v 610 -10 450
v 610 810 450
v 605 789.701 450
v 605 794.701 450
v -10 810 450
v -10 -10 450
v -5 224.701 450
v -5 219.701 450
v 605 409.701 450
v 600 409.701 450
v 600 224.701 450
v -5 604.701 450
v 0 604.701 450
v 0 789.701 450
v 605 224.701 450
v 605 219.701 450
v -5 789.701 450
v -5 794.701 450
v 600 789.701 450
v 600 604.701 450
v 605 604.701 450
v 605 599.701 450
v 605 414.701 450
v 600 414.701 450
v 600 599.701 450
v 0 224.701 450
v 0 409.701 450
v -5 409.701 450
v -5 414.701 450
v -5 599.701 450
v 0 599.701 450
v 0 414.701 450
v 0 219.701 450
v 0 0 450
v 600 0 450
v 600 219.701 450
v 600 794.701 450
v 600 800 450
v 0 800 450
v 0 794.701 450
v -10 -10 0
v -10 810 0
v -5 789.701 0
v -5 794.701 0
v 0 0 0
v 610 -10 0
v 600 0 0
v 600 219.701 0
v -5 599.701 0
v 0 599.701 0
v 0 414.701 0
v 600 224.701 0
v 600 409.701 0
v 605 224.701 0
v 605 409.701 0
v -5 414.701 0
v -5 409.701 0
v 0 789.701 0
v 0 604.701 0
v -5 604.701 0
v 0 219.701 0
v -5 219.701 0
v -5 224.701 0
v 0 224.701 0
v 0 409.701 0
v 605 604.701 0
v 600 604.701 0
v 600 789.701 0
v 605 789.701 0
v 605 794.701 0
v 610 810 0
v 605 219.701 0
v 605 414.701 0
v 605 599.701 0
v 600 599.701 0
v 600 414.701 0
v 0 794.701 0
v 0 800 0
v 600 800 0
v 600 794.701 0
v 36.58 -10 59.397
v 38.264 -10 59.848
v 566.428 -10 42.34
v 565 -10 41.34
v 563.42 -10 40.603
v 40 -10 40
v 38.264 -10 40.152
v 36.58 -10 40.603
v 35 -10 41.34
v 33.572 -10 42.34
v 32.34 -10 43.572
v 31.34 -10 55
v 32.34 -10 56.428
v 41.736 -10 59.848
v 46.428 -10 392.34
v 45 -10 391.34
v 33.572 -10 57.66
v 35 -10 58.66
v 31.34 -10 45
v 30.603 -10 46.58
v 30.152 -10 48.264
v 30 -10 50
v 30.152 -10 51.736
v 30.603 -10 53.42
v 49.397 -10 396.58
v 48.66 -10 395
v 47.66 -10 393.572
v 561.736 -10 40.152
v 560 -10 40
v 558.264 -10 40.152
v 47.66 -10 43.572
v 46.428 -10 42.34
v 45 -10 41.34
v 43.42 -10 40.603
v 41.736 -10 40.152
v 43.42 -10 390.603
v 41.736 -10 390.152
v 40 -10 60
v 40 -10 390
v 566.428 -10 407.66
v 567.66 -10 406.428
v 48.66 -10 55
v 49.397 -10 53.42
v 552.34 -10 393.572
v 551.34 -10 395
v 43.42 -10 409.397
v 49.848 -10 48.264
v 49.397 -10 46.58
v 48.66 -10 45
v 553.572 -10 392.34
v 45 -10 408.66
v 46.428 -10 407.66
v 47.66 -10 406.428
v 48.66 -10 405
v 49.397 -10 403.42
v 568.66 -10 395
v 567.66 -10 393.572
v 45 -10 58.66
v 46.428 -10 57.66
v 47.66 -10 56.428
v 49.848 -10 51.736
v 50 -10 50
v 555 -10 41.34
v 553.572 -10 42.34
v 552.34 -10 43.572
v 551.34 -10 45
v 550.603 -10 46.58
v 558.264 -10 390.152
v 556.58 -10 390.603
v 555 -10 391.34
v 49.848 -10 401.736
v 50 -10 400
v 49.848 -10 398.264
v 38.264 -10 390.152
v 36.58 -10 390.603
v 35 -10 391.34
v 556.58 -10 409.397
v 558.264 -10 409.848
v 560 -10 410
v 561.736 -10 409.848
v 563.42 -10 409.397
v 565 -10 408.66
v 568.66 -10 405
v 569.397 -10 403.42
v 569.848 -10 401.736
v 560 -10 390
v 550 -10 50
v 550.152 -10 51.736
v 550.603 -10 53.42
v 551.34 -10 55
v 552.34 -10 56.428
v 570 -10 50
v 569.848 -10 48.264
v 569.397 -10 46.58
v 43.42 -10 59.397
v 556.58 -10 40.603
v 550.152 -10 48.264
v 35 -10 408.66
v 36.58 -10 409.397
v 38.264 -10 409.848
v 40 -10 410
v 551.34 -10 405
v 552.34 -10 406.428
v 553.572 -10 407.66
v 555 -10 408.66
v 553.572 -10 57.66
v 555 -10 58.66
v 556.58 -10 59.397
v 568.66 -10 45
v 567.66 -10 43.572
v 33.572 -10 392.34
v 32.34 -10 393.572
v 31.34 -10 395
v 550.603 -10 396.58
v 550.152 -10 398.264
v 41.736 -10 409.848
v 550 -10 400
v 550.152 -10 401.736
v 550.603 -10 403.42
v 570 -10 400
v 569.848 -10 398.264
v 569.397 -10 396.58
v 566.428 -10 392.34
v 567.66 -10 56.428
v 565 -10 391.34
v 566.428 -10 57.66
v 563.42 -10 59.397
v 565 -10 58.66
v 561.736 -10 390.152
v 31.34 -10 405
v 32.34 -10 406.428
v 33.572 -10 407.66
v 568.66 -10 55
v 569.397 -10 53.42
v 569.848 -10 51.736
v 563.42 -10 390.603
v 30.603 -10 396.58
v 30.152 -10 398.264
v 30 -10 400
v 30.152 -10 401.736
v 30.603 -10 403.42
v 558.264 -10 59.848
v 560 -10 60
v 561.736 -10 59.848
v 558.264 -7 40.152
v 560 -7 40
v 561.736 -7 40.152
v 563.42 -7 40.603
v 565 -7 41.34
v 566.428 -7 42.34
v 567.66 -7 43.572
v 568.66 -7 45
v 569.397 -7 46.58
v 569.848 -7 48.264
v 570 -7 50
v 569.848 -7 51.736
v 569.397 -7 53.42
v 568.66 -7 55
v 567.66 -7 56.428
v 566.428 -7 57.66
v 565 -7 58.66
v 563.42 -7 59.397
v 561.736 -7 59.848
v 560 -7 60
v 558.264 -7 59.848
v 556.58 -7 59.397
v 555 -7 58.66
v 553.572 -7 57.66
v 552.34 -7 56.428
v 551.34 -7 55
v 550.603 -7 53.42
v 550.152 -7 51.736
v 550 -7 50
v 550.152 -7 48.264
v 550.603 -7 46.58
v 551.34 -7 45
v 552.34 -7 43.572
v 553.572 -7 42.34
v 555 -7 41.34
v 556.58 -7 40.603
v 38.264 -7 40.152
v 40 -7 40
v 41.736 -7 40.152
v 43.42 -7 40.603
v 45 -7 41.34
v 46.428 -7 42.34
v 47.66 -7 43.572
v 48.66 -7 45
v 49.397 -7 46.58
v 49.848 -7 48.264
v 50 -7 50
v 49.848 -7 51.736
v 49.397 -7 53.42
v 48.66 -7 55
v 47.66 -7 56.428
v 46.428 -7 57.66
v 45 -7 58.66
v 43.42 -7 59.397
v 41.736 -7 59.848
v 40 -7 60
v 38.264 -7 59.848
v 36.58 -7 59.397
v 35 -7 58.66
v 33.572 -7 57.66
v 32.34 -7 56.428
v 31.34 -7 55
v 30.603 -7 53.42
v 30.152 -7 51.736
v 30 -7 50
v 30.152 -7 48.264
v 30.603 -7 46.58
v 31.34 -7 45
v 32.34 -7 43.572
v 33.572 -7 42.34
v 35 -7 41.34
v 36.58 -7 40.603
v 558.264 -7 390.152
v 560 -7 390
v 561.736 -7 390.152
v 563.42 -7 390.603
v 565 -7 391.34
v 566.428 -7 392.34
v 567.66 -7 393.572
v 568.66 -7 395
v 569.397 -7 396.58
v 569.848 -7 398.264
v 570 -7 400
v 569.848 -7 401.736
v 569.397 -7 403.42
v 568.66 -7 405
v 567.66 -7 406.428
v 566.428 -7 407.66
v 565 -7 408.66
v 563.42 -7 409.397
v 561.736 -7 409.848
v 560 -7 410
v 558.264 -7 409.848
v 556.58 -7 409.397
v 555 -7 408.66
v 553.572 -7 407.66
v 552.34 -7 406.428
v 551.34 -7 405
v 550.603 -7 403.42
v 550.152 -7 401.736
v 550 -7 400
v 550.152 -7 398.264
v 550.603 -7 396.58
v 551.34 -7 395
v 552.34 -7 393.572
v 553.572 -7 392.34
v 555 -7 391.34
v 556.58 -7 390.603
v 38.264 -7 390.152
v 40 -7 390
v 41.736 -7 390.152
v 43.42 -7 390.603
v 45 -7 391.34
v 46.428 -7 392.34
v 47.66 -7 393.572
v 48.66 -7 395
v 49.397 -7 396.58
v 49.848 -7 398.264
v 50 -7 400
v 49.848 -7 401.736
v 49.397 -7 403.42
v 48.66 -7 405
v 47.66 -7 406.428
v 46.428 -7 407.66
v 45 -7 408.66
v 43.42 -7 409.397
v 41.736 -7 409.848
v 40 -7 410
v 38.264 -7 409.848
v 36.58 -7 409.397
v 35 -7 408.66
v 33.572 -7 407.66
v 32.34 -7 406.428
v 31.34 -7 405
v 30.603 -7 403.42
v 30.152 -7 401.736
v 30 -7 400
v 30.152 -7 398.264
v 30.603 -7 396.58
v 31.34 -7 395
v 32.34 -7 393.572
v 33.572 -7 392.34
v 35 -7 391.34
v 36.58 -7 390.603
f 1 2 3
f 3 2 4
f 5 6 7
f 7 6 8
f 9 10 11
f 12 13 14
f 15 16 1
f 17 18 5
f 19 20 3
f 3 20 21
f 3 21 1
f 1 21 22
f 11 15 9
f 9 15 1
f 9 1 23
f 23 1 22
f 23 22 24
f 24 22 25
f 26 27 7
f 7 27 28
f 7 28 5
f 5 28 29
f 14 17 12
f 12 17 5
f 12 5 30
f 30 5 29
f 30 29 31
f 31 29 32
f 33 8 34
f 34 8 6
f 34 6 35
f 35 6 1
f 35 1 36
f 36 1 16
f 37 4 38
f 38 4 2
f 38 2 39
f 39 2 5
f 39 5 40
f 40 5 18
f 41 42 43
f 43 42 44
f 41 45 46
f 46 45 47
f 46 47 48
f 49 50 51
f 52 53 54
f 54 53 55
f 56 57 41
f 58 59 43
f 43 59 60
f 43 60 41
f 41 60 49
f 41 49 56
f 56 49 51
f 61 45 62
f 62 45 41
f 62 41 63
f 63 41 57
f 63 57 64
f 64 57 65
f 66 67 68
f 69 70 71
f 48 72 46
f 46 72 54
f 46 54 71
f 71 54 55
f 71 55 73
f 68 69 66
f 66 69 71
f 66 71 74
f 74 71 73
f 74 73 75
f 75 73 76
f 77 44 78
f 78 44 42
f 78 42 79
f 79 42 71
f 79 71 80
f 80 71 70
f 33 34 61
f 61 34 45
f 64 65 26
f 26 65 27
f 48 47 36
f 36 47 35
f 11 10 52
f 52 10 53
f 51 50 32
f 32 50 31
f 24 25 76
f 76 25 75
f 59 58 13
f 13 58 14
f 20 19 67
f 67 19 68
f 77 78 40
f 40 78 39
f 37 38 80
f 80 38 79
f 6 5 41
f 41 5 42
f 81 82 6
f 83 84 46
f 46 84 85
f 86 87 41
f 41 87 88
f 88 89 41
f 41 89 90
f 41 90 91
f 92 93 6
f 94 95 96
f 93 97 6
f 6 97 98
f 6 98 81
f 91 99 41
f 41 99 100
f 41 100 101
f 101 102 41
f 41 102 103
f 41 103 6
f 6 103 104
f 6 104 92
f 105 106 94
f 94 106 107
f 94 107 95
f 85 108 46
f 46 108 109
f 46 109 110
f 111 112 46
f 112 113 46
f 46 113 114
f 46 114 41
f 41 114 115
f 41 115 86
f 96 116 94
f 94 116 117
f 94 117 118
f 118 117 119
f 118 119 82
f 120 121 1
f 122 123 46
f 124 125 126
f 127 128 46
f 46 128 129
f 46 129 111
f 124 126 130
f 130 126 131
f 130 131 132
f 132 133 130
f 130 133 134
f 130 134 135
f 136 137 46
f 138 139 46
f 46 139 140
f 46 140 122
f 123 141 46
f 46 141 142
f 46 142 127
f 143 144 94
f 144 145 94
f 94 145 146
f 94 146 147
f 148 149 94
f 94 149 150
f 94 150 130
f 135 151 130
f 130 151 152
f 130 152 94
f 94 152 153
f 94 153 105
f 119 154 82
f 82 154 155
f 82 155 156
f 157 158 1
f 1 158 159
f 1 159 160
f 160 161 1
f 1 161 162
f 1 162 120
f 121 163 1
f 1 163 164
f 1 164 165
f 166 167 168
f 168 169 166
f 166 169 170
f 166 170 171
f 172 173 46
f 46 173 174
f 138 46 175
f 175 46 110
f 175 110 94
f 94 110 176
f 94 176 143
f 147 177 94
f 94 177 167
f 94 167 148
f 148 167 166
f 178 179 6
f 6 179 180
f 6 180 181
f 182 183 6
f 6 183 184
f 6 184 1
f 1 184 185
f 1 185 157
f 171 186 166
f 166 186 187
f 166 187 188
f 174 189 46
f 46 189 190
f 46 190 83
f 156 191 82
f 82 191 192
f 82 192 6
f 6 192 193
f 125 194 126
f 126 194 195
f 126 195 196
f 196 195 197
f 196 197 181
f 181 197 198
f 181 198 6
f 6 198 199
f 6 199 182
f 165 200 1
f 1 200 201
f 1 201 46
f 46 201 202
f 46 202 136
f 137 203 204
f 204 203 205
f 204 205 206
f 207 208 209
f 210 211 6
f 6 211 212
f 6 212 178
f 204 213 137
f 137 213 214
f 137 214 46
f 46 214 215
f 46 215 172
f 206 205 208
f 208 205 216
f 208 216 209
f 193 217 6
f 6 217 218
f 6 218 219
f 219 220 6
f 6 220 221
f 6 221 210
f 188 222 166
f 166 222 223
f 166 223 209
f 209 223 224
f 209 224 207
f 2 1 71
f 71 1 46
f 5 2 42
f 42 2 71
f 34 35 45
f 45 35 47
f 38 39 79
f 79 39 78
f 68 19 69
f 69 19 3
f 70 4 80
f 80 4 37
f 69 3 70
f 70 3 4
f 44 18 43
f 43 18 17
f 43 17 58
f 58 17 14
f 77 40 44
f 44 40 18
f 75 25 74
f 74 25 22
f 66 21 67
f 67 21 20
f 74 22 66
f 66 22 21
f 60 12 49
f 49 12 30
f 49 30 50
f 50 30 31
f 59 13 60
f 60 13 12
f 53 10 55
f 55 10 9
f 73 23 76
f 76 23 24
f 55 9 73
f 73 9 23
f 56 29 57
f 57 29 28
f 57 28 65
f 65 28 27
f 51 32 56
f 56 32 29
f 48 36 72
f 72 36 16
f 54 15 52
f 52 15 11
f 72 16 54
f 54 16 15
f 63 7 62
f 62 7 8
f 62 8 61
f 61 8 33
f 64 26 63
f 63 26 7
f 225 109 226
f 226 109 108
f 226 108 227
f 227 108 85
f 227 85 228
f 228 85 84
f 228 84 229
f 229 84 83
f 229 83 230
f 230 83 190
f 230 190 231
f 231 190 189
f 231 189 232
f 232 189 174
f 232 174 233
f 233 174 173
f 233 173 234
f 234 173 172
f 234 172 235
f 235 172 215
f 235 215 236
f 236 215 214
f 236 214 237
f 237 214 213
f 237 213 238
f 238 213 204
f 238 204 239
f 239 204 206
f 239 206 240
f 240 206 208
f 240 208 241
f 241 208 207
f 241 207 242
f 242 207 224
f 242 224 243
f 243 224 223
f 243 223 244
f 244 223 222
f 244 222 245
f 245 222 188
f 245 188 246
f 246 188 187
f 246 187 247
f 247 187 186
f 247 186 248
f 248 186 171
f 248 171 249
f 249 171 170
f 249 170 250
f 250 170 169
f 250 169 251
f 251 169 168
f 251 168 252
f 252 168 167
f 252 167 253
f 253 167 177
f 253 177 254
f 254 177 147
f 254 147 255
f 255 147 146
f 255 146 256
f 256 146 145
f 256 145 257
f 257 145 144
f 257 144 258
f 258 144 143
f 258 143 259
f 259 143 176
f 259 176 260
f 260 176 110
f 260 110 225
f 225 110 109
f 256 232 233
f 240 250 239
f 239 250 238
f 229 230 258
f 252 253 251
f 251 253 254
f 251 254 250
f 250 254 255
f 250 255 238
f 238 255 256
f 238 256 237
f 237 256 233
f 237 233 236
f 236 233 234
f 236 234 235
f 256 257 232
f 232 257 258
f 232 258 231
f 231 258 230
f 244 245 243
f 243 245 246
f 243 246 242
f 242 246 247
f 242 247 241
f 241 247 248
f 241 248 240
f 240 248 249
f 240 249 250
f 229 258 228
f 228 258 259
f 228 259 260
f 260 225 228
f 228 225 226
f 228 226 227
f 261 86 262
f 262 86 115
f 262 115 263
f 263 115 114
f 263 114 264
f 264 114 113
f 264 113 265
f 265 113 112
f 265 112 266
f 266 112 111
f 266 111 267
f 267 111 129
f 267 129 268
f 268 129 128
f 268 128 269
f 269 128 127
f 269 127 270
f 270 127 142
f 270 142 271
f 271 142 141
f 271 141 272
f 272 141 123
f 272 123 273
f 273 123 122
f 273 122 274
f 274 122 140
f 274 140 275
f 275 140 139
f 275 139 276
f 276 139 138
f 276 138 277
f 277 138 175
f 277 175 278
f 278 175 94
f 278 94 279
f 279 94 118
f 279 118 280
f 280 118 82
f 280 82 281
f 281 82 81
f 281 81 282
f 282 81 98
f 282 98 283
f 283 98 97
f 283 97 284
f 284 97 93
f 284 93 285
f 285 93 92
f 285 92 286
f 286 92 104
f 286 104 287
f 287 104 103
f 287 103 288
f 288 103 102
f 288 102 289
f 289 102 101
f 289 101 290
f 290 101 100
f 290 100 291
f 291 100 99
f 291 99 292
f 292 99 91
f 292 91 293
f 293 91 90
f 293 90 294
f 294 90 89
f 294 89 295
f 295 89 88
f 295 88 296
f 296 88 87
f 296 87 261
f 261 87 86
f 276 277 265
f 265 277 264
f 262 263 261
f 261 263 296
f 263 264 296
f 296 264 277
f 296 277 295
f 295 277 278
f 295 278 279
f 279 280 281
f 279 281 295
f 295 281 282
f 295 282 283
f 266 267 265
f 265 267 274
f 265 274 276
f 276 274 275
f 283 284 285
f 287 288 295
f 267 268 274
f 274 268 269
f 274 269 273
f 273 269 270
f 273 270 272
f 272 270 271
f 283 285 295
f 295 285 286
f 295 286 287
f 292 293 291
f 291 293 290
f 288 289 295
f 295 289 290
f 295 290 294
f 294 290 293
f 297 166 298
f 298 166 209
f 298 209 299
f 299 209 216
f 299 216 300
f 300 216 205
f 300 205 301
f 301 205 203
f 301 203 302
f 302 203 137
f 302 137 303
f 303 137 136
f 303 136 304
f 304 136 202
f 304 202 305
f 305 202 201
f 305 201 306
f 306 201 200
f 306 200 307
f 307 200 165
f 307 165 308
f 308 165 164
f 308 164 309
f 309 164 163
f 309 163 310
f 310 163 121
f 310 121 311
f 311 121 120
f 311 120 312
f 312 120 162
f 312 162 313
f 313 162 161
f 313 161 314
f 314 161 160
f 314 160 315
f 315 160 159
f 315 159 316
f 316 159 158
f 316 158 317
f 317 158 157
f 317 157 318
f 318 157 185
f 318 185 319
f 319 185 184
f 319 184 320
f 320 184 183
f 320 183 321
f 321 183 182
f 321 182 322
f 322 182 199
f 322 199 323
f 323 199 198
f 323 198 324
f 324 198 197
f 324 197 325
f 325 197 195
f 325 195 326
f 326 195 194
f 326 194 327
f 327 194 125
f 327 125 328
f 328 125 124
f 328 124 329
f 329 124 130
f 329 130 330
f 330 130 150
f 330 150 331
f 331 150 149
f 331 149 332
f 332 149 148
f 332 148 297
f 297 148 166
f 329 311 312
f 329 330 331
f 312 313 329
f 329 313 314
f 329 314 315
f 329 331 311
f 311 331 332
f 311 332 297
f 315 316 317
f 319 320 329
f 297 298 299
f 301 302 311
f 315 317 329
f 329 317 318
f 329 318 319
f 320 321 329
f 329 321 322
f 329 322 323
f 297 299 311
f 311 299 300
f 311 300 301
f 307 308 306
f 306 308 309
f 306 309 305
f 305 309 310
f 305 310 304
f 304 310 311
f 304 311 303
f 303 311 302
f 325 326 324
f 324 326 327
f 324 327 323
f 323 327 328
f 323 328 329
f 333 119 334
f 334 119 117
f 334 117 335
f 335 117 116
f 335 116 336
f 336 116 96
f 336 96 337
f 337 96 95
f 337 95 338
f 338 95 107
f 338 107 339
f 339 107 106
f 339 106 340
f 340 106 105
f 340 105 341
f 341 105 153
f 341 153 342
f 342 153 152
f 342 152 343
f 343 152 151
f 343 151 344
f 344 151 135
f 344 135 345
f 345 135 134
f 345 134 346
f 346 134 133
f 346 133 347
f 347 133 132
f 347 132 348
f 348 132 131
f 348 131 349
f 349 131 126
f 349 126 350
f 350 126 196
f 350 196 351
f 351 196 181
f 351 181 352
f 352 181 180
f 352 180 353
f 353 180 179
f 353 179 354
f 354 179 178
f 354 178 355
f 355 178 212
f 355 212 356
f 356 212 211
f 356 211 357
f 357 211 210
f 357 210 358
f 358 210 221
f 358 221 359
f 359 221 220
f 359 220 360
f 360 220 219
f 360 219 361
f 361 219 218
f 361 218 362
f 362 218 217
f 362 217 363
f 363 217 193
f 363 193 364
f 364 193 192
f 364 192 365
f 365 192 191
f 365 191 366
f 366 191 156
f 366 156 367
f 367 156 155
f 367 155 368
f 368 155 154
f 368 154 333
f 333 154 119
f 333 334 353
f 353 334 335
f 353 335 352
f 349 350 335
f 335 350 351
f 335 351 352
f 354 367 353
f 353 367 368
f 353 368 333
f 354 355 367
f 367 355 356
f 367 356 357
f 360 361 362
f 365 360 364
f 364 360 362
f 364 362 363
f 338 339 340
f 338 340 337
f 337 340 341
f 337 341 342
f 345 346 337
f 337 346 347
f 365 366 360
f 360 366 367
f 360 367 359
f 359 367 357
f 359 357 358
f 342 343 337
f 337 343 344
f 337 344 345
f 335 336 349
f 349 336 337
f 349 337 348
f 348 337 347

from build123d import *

# Parameters (mm, degrees)
SKETCH1_W               = 620
SKETCH1_H               = 820
SKETCH1_W_2             = 600
SKETCH1_H_2             = 800
EXTRUDE_THIN1_DEPTH     = 450
SKETCH2_W               = 610
SKETCH2_H               = 5
CUT_EXTRUDE1_DEPTH      = 1000
CUT_EXTRUDE1_DEPTH_BACK = 1000
SKETCH3_R               = 10
CUT_EXTRUDE2_DEPTH      = 3


with BuildPart() as part:
    # Sketch1 → Extrude-Thin1 (new body)
    with BuildSketch(Plane.XY):
        with Locations((300, 400)):
            Rectangle(SKETCH1_W, SKETCH1_H)
        with Locations((300, 400)):
            Rectangle(SKETCH1_W_2, SKETCH1_H_2, mode=Mode.SUBTRACT)
    extrude(amount=EXTRUDE_THIN1_DEPTH)

    # Sketch2 → Cut-Extrude1 (cut, two sides)
    with BuildSketch(Plane.XY) as cut_extrude1_sk:
        with Locations((300, 602.200684115)):
            Rectangle(SKETCH2_W, SKETCH2_H)
        with Locations((300, 792.200684115)):
            Rectangle(SKETCH2_W, SKETCH2_H)
        with Locations((300, 412.200684115)):
            Rectangle(SKETCH2_W, SKETCH2_H)
        with Locations((300, 222.200684115)):
            Rectangle(SKETCH2_W, SKETCH2_H)
    extrude(amount=CUT_EXTRUDE1_DEPTH, mode=Mode.SUBTRACT)
    extrude(cut_extrude1_sk.sketch, amount=-CUT_EXTRUDE1_DEPTH_BACK, mode=Mode.SUBTRACT)

    # Sketch3 → Cut-Extrude2 (cut)
    with BuildSketch(Plane(origin=(0, -10, 0), x_dir=(-1, 0, 0), z_dir=(0, -1, 0))):
        with Locations((-560, -50)):
            Circle(SKETCH3_R)
        with Locations((-40, -50)):
            Circle(SKETCH3_R)
        with Locations((-560, -400)):
            Circle(SKETCH3_R)
        with Locations((-40, -400)):
            Circle(SKETCH3_R)
    extrude(amount=-CUT_EXTRUDE2_DEPTH, mode=Mode.SUBTRACT)


solid = part.part
